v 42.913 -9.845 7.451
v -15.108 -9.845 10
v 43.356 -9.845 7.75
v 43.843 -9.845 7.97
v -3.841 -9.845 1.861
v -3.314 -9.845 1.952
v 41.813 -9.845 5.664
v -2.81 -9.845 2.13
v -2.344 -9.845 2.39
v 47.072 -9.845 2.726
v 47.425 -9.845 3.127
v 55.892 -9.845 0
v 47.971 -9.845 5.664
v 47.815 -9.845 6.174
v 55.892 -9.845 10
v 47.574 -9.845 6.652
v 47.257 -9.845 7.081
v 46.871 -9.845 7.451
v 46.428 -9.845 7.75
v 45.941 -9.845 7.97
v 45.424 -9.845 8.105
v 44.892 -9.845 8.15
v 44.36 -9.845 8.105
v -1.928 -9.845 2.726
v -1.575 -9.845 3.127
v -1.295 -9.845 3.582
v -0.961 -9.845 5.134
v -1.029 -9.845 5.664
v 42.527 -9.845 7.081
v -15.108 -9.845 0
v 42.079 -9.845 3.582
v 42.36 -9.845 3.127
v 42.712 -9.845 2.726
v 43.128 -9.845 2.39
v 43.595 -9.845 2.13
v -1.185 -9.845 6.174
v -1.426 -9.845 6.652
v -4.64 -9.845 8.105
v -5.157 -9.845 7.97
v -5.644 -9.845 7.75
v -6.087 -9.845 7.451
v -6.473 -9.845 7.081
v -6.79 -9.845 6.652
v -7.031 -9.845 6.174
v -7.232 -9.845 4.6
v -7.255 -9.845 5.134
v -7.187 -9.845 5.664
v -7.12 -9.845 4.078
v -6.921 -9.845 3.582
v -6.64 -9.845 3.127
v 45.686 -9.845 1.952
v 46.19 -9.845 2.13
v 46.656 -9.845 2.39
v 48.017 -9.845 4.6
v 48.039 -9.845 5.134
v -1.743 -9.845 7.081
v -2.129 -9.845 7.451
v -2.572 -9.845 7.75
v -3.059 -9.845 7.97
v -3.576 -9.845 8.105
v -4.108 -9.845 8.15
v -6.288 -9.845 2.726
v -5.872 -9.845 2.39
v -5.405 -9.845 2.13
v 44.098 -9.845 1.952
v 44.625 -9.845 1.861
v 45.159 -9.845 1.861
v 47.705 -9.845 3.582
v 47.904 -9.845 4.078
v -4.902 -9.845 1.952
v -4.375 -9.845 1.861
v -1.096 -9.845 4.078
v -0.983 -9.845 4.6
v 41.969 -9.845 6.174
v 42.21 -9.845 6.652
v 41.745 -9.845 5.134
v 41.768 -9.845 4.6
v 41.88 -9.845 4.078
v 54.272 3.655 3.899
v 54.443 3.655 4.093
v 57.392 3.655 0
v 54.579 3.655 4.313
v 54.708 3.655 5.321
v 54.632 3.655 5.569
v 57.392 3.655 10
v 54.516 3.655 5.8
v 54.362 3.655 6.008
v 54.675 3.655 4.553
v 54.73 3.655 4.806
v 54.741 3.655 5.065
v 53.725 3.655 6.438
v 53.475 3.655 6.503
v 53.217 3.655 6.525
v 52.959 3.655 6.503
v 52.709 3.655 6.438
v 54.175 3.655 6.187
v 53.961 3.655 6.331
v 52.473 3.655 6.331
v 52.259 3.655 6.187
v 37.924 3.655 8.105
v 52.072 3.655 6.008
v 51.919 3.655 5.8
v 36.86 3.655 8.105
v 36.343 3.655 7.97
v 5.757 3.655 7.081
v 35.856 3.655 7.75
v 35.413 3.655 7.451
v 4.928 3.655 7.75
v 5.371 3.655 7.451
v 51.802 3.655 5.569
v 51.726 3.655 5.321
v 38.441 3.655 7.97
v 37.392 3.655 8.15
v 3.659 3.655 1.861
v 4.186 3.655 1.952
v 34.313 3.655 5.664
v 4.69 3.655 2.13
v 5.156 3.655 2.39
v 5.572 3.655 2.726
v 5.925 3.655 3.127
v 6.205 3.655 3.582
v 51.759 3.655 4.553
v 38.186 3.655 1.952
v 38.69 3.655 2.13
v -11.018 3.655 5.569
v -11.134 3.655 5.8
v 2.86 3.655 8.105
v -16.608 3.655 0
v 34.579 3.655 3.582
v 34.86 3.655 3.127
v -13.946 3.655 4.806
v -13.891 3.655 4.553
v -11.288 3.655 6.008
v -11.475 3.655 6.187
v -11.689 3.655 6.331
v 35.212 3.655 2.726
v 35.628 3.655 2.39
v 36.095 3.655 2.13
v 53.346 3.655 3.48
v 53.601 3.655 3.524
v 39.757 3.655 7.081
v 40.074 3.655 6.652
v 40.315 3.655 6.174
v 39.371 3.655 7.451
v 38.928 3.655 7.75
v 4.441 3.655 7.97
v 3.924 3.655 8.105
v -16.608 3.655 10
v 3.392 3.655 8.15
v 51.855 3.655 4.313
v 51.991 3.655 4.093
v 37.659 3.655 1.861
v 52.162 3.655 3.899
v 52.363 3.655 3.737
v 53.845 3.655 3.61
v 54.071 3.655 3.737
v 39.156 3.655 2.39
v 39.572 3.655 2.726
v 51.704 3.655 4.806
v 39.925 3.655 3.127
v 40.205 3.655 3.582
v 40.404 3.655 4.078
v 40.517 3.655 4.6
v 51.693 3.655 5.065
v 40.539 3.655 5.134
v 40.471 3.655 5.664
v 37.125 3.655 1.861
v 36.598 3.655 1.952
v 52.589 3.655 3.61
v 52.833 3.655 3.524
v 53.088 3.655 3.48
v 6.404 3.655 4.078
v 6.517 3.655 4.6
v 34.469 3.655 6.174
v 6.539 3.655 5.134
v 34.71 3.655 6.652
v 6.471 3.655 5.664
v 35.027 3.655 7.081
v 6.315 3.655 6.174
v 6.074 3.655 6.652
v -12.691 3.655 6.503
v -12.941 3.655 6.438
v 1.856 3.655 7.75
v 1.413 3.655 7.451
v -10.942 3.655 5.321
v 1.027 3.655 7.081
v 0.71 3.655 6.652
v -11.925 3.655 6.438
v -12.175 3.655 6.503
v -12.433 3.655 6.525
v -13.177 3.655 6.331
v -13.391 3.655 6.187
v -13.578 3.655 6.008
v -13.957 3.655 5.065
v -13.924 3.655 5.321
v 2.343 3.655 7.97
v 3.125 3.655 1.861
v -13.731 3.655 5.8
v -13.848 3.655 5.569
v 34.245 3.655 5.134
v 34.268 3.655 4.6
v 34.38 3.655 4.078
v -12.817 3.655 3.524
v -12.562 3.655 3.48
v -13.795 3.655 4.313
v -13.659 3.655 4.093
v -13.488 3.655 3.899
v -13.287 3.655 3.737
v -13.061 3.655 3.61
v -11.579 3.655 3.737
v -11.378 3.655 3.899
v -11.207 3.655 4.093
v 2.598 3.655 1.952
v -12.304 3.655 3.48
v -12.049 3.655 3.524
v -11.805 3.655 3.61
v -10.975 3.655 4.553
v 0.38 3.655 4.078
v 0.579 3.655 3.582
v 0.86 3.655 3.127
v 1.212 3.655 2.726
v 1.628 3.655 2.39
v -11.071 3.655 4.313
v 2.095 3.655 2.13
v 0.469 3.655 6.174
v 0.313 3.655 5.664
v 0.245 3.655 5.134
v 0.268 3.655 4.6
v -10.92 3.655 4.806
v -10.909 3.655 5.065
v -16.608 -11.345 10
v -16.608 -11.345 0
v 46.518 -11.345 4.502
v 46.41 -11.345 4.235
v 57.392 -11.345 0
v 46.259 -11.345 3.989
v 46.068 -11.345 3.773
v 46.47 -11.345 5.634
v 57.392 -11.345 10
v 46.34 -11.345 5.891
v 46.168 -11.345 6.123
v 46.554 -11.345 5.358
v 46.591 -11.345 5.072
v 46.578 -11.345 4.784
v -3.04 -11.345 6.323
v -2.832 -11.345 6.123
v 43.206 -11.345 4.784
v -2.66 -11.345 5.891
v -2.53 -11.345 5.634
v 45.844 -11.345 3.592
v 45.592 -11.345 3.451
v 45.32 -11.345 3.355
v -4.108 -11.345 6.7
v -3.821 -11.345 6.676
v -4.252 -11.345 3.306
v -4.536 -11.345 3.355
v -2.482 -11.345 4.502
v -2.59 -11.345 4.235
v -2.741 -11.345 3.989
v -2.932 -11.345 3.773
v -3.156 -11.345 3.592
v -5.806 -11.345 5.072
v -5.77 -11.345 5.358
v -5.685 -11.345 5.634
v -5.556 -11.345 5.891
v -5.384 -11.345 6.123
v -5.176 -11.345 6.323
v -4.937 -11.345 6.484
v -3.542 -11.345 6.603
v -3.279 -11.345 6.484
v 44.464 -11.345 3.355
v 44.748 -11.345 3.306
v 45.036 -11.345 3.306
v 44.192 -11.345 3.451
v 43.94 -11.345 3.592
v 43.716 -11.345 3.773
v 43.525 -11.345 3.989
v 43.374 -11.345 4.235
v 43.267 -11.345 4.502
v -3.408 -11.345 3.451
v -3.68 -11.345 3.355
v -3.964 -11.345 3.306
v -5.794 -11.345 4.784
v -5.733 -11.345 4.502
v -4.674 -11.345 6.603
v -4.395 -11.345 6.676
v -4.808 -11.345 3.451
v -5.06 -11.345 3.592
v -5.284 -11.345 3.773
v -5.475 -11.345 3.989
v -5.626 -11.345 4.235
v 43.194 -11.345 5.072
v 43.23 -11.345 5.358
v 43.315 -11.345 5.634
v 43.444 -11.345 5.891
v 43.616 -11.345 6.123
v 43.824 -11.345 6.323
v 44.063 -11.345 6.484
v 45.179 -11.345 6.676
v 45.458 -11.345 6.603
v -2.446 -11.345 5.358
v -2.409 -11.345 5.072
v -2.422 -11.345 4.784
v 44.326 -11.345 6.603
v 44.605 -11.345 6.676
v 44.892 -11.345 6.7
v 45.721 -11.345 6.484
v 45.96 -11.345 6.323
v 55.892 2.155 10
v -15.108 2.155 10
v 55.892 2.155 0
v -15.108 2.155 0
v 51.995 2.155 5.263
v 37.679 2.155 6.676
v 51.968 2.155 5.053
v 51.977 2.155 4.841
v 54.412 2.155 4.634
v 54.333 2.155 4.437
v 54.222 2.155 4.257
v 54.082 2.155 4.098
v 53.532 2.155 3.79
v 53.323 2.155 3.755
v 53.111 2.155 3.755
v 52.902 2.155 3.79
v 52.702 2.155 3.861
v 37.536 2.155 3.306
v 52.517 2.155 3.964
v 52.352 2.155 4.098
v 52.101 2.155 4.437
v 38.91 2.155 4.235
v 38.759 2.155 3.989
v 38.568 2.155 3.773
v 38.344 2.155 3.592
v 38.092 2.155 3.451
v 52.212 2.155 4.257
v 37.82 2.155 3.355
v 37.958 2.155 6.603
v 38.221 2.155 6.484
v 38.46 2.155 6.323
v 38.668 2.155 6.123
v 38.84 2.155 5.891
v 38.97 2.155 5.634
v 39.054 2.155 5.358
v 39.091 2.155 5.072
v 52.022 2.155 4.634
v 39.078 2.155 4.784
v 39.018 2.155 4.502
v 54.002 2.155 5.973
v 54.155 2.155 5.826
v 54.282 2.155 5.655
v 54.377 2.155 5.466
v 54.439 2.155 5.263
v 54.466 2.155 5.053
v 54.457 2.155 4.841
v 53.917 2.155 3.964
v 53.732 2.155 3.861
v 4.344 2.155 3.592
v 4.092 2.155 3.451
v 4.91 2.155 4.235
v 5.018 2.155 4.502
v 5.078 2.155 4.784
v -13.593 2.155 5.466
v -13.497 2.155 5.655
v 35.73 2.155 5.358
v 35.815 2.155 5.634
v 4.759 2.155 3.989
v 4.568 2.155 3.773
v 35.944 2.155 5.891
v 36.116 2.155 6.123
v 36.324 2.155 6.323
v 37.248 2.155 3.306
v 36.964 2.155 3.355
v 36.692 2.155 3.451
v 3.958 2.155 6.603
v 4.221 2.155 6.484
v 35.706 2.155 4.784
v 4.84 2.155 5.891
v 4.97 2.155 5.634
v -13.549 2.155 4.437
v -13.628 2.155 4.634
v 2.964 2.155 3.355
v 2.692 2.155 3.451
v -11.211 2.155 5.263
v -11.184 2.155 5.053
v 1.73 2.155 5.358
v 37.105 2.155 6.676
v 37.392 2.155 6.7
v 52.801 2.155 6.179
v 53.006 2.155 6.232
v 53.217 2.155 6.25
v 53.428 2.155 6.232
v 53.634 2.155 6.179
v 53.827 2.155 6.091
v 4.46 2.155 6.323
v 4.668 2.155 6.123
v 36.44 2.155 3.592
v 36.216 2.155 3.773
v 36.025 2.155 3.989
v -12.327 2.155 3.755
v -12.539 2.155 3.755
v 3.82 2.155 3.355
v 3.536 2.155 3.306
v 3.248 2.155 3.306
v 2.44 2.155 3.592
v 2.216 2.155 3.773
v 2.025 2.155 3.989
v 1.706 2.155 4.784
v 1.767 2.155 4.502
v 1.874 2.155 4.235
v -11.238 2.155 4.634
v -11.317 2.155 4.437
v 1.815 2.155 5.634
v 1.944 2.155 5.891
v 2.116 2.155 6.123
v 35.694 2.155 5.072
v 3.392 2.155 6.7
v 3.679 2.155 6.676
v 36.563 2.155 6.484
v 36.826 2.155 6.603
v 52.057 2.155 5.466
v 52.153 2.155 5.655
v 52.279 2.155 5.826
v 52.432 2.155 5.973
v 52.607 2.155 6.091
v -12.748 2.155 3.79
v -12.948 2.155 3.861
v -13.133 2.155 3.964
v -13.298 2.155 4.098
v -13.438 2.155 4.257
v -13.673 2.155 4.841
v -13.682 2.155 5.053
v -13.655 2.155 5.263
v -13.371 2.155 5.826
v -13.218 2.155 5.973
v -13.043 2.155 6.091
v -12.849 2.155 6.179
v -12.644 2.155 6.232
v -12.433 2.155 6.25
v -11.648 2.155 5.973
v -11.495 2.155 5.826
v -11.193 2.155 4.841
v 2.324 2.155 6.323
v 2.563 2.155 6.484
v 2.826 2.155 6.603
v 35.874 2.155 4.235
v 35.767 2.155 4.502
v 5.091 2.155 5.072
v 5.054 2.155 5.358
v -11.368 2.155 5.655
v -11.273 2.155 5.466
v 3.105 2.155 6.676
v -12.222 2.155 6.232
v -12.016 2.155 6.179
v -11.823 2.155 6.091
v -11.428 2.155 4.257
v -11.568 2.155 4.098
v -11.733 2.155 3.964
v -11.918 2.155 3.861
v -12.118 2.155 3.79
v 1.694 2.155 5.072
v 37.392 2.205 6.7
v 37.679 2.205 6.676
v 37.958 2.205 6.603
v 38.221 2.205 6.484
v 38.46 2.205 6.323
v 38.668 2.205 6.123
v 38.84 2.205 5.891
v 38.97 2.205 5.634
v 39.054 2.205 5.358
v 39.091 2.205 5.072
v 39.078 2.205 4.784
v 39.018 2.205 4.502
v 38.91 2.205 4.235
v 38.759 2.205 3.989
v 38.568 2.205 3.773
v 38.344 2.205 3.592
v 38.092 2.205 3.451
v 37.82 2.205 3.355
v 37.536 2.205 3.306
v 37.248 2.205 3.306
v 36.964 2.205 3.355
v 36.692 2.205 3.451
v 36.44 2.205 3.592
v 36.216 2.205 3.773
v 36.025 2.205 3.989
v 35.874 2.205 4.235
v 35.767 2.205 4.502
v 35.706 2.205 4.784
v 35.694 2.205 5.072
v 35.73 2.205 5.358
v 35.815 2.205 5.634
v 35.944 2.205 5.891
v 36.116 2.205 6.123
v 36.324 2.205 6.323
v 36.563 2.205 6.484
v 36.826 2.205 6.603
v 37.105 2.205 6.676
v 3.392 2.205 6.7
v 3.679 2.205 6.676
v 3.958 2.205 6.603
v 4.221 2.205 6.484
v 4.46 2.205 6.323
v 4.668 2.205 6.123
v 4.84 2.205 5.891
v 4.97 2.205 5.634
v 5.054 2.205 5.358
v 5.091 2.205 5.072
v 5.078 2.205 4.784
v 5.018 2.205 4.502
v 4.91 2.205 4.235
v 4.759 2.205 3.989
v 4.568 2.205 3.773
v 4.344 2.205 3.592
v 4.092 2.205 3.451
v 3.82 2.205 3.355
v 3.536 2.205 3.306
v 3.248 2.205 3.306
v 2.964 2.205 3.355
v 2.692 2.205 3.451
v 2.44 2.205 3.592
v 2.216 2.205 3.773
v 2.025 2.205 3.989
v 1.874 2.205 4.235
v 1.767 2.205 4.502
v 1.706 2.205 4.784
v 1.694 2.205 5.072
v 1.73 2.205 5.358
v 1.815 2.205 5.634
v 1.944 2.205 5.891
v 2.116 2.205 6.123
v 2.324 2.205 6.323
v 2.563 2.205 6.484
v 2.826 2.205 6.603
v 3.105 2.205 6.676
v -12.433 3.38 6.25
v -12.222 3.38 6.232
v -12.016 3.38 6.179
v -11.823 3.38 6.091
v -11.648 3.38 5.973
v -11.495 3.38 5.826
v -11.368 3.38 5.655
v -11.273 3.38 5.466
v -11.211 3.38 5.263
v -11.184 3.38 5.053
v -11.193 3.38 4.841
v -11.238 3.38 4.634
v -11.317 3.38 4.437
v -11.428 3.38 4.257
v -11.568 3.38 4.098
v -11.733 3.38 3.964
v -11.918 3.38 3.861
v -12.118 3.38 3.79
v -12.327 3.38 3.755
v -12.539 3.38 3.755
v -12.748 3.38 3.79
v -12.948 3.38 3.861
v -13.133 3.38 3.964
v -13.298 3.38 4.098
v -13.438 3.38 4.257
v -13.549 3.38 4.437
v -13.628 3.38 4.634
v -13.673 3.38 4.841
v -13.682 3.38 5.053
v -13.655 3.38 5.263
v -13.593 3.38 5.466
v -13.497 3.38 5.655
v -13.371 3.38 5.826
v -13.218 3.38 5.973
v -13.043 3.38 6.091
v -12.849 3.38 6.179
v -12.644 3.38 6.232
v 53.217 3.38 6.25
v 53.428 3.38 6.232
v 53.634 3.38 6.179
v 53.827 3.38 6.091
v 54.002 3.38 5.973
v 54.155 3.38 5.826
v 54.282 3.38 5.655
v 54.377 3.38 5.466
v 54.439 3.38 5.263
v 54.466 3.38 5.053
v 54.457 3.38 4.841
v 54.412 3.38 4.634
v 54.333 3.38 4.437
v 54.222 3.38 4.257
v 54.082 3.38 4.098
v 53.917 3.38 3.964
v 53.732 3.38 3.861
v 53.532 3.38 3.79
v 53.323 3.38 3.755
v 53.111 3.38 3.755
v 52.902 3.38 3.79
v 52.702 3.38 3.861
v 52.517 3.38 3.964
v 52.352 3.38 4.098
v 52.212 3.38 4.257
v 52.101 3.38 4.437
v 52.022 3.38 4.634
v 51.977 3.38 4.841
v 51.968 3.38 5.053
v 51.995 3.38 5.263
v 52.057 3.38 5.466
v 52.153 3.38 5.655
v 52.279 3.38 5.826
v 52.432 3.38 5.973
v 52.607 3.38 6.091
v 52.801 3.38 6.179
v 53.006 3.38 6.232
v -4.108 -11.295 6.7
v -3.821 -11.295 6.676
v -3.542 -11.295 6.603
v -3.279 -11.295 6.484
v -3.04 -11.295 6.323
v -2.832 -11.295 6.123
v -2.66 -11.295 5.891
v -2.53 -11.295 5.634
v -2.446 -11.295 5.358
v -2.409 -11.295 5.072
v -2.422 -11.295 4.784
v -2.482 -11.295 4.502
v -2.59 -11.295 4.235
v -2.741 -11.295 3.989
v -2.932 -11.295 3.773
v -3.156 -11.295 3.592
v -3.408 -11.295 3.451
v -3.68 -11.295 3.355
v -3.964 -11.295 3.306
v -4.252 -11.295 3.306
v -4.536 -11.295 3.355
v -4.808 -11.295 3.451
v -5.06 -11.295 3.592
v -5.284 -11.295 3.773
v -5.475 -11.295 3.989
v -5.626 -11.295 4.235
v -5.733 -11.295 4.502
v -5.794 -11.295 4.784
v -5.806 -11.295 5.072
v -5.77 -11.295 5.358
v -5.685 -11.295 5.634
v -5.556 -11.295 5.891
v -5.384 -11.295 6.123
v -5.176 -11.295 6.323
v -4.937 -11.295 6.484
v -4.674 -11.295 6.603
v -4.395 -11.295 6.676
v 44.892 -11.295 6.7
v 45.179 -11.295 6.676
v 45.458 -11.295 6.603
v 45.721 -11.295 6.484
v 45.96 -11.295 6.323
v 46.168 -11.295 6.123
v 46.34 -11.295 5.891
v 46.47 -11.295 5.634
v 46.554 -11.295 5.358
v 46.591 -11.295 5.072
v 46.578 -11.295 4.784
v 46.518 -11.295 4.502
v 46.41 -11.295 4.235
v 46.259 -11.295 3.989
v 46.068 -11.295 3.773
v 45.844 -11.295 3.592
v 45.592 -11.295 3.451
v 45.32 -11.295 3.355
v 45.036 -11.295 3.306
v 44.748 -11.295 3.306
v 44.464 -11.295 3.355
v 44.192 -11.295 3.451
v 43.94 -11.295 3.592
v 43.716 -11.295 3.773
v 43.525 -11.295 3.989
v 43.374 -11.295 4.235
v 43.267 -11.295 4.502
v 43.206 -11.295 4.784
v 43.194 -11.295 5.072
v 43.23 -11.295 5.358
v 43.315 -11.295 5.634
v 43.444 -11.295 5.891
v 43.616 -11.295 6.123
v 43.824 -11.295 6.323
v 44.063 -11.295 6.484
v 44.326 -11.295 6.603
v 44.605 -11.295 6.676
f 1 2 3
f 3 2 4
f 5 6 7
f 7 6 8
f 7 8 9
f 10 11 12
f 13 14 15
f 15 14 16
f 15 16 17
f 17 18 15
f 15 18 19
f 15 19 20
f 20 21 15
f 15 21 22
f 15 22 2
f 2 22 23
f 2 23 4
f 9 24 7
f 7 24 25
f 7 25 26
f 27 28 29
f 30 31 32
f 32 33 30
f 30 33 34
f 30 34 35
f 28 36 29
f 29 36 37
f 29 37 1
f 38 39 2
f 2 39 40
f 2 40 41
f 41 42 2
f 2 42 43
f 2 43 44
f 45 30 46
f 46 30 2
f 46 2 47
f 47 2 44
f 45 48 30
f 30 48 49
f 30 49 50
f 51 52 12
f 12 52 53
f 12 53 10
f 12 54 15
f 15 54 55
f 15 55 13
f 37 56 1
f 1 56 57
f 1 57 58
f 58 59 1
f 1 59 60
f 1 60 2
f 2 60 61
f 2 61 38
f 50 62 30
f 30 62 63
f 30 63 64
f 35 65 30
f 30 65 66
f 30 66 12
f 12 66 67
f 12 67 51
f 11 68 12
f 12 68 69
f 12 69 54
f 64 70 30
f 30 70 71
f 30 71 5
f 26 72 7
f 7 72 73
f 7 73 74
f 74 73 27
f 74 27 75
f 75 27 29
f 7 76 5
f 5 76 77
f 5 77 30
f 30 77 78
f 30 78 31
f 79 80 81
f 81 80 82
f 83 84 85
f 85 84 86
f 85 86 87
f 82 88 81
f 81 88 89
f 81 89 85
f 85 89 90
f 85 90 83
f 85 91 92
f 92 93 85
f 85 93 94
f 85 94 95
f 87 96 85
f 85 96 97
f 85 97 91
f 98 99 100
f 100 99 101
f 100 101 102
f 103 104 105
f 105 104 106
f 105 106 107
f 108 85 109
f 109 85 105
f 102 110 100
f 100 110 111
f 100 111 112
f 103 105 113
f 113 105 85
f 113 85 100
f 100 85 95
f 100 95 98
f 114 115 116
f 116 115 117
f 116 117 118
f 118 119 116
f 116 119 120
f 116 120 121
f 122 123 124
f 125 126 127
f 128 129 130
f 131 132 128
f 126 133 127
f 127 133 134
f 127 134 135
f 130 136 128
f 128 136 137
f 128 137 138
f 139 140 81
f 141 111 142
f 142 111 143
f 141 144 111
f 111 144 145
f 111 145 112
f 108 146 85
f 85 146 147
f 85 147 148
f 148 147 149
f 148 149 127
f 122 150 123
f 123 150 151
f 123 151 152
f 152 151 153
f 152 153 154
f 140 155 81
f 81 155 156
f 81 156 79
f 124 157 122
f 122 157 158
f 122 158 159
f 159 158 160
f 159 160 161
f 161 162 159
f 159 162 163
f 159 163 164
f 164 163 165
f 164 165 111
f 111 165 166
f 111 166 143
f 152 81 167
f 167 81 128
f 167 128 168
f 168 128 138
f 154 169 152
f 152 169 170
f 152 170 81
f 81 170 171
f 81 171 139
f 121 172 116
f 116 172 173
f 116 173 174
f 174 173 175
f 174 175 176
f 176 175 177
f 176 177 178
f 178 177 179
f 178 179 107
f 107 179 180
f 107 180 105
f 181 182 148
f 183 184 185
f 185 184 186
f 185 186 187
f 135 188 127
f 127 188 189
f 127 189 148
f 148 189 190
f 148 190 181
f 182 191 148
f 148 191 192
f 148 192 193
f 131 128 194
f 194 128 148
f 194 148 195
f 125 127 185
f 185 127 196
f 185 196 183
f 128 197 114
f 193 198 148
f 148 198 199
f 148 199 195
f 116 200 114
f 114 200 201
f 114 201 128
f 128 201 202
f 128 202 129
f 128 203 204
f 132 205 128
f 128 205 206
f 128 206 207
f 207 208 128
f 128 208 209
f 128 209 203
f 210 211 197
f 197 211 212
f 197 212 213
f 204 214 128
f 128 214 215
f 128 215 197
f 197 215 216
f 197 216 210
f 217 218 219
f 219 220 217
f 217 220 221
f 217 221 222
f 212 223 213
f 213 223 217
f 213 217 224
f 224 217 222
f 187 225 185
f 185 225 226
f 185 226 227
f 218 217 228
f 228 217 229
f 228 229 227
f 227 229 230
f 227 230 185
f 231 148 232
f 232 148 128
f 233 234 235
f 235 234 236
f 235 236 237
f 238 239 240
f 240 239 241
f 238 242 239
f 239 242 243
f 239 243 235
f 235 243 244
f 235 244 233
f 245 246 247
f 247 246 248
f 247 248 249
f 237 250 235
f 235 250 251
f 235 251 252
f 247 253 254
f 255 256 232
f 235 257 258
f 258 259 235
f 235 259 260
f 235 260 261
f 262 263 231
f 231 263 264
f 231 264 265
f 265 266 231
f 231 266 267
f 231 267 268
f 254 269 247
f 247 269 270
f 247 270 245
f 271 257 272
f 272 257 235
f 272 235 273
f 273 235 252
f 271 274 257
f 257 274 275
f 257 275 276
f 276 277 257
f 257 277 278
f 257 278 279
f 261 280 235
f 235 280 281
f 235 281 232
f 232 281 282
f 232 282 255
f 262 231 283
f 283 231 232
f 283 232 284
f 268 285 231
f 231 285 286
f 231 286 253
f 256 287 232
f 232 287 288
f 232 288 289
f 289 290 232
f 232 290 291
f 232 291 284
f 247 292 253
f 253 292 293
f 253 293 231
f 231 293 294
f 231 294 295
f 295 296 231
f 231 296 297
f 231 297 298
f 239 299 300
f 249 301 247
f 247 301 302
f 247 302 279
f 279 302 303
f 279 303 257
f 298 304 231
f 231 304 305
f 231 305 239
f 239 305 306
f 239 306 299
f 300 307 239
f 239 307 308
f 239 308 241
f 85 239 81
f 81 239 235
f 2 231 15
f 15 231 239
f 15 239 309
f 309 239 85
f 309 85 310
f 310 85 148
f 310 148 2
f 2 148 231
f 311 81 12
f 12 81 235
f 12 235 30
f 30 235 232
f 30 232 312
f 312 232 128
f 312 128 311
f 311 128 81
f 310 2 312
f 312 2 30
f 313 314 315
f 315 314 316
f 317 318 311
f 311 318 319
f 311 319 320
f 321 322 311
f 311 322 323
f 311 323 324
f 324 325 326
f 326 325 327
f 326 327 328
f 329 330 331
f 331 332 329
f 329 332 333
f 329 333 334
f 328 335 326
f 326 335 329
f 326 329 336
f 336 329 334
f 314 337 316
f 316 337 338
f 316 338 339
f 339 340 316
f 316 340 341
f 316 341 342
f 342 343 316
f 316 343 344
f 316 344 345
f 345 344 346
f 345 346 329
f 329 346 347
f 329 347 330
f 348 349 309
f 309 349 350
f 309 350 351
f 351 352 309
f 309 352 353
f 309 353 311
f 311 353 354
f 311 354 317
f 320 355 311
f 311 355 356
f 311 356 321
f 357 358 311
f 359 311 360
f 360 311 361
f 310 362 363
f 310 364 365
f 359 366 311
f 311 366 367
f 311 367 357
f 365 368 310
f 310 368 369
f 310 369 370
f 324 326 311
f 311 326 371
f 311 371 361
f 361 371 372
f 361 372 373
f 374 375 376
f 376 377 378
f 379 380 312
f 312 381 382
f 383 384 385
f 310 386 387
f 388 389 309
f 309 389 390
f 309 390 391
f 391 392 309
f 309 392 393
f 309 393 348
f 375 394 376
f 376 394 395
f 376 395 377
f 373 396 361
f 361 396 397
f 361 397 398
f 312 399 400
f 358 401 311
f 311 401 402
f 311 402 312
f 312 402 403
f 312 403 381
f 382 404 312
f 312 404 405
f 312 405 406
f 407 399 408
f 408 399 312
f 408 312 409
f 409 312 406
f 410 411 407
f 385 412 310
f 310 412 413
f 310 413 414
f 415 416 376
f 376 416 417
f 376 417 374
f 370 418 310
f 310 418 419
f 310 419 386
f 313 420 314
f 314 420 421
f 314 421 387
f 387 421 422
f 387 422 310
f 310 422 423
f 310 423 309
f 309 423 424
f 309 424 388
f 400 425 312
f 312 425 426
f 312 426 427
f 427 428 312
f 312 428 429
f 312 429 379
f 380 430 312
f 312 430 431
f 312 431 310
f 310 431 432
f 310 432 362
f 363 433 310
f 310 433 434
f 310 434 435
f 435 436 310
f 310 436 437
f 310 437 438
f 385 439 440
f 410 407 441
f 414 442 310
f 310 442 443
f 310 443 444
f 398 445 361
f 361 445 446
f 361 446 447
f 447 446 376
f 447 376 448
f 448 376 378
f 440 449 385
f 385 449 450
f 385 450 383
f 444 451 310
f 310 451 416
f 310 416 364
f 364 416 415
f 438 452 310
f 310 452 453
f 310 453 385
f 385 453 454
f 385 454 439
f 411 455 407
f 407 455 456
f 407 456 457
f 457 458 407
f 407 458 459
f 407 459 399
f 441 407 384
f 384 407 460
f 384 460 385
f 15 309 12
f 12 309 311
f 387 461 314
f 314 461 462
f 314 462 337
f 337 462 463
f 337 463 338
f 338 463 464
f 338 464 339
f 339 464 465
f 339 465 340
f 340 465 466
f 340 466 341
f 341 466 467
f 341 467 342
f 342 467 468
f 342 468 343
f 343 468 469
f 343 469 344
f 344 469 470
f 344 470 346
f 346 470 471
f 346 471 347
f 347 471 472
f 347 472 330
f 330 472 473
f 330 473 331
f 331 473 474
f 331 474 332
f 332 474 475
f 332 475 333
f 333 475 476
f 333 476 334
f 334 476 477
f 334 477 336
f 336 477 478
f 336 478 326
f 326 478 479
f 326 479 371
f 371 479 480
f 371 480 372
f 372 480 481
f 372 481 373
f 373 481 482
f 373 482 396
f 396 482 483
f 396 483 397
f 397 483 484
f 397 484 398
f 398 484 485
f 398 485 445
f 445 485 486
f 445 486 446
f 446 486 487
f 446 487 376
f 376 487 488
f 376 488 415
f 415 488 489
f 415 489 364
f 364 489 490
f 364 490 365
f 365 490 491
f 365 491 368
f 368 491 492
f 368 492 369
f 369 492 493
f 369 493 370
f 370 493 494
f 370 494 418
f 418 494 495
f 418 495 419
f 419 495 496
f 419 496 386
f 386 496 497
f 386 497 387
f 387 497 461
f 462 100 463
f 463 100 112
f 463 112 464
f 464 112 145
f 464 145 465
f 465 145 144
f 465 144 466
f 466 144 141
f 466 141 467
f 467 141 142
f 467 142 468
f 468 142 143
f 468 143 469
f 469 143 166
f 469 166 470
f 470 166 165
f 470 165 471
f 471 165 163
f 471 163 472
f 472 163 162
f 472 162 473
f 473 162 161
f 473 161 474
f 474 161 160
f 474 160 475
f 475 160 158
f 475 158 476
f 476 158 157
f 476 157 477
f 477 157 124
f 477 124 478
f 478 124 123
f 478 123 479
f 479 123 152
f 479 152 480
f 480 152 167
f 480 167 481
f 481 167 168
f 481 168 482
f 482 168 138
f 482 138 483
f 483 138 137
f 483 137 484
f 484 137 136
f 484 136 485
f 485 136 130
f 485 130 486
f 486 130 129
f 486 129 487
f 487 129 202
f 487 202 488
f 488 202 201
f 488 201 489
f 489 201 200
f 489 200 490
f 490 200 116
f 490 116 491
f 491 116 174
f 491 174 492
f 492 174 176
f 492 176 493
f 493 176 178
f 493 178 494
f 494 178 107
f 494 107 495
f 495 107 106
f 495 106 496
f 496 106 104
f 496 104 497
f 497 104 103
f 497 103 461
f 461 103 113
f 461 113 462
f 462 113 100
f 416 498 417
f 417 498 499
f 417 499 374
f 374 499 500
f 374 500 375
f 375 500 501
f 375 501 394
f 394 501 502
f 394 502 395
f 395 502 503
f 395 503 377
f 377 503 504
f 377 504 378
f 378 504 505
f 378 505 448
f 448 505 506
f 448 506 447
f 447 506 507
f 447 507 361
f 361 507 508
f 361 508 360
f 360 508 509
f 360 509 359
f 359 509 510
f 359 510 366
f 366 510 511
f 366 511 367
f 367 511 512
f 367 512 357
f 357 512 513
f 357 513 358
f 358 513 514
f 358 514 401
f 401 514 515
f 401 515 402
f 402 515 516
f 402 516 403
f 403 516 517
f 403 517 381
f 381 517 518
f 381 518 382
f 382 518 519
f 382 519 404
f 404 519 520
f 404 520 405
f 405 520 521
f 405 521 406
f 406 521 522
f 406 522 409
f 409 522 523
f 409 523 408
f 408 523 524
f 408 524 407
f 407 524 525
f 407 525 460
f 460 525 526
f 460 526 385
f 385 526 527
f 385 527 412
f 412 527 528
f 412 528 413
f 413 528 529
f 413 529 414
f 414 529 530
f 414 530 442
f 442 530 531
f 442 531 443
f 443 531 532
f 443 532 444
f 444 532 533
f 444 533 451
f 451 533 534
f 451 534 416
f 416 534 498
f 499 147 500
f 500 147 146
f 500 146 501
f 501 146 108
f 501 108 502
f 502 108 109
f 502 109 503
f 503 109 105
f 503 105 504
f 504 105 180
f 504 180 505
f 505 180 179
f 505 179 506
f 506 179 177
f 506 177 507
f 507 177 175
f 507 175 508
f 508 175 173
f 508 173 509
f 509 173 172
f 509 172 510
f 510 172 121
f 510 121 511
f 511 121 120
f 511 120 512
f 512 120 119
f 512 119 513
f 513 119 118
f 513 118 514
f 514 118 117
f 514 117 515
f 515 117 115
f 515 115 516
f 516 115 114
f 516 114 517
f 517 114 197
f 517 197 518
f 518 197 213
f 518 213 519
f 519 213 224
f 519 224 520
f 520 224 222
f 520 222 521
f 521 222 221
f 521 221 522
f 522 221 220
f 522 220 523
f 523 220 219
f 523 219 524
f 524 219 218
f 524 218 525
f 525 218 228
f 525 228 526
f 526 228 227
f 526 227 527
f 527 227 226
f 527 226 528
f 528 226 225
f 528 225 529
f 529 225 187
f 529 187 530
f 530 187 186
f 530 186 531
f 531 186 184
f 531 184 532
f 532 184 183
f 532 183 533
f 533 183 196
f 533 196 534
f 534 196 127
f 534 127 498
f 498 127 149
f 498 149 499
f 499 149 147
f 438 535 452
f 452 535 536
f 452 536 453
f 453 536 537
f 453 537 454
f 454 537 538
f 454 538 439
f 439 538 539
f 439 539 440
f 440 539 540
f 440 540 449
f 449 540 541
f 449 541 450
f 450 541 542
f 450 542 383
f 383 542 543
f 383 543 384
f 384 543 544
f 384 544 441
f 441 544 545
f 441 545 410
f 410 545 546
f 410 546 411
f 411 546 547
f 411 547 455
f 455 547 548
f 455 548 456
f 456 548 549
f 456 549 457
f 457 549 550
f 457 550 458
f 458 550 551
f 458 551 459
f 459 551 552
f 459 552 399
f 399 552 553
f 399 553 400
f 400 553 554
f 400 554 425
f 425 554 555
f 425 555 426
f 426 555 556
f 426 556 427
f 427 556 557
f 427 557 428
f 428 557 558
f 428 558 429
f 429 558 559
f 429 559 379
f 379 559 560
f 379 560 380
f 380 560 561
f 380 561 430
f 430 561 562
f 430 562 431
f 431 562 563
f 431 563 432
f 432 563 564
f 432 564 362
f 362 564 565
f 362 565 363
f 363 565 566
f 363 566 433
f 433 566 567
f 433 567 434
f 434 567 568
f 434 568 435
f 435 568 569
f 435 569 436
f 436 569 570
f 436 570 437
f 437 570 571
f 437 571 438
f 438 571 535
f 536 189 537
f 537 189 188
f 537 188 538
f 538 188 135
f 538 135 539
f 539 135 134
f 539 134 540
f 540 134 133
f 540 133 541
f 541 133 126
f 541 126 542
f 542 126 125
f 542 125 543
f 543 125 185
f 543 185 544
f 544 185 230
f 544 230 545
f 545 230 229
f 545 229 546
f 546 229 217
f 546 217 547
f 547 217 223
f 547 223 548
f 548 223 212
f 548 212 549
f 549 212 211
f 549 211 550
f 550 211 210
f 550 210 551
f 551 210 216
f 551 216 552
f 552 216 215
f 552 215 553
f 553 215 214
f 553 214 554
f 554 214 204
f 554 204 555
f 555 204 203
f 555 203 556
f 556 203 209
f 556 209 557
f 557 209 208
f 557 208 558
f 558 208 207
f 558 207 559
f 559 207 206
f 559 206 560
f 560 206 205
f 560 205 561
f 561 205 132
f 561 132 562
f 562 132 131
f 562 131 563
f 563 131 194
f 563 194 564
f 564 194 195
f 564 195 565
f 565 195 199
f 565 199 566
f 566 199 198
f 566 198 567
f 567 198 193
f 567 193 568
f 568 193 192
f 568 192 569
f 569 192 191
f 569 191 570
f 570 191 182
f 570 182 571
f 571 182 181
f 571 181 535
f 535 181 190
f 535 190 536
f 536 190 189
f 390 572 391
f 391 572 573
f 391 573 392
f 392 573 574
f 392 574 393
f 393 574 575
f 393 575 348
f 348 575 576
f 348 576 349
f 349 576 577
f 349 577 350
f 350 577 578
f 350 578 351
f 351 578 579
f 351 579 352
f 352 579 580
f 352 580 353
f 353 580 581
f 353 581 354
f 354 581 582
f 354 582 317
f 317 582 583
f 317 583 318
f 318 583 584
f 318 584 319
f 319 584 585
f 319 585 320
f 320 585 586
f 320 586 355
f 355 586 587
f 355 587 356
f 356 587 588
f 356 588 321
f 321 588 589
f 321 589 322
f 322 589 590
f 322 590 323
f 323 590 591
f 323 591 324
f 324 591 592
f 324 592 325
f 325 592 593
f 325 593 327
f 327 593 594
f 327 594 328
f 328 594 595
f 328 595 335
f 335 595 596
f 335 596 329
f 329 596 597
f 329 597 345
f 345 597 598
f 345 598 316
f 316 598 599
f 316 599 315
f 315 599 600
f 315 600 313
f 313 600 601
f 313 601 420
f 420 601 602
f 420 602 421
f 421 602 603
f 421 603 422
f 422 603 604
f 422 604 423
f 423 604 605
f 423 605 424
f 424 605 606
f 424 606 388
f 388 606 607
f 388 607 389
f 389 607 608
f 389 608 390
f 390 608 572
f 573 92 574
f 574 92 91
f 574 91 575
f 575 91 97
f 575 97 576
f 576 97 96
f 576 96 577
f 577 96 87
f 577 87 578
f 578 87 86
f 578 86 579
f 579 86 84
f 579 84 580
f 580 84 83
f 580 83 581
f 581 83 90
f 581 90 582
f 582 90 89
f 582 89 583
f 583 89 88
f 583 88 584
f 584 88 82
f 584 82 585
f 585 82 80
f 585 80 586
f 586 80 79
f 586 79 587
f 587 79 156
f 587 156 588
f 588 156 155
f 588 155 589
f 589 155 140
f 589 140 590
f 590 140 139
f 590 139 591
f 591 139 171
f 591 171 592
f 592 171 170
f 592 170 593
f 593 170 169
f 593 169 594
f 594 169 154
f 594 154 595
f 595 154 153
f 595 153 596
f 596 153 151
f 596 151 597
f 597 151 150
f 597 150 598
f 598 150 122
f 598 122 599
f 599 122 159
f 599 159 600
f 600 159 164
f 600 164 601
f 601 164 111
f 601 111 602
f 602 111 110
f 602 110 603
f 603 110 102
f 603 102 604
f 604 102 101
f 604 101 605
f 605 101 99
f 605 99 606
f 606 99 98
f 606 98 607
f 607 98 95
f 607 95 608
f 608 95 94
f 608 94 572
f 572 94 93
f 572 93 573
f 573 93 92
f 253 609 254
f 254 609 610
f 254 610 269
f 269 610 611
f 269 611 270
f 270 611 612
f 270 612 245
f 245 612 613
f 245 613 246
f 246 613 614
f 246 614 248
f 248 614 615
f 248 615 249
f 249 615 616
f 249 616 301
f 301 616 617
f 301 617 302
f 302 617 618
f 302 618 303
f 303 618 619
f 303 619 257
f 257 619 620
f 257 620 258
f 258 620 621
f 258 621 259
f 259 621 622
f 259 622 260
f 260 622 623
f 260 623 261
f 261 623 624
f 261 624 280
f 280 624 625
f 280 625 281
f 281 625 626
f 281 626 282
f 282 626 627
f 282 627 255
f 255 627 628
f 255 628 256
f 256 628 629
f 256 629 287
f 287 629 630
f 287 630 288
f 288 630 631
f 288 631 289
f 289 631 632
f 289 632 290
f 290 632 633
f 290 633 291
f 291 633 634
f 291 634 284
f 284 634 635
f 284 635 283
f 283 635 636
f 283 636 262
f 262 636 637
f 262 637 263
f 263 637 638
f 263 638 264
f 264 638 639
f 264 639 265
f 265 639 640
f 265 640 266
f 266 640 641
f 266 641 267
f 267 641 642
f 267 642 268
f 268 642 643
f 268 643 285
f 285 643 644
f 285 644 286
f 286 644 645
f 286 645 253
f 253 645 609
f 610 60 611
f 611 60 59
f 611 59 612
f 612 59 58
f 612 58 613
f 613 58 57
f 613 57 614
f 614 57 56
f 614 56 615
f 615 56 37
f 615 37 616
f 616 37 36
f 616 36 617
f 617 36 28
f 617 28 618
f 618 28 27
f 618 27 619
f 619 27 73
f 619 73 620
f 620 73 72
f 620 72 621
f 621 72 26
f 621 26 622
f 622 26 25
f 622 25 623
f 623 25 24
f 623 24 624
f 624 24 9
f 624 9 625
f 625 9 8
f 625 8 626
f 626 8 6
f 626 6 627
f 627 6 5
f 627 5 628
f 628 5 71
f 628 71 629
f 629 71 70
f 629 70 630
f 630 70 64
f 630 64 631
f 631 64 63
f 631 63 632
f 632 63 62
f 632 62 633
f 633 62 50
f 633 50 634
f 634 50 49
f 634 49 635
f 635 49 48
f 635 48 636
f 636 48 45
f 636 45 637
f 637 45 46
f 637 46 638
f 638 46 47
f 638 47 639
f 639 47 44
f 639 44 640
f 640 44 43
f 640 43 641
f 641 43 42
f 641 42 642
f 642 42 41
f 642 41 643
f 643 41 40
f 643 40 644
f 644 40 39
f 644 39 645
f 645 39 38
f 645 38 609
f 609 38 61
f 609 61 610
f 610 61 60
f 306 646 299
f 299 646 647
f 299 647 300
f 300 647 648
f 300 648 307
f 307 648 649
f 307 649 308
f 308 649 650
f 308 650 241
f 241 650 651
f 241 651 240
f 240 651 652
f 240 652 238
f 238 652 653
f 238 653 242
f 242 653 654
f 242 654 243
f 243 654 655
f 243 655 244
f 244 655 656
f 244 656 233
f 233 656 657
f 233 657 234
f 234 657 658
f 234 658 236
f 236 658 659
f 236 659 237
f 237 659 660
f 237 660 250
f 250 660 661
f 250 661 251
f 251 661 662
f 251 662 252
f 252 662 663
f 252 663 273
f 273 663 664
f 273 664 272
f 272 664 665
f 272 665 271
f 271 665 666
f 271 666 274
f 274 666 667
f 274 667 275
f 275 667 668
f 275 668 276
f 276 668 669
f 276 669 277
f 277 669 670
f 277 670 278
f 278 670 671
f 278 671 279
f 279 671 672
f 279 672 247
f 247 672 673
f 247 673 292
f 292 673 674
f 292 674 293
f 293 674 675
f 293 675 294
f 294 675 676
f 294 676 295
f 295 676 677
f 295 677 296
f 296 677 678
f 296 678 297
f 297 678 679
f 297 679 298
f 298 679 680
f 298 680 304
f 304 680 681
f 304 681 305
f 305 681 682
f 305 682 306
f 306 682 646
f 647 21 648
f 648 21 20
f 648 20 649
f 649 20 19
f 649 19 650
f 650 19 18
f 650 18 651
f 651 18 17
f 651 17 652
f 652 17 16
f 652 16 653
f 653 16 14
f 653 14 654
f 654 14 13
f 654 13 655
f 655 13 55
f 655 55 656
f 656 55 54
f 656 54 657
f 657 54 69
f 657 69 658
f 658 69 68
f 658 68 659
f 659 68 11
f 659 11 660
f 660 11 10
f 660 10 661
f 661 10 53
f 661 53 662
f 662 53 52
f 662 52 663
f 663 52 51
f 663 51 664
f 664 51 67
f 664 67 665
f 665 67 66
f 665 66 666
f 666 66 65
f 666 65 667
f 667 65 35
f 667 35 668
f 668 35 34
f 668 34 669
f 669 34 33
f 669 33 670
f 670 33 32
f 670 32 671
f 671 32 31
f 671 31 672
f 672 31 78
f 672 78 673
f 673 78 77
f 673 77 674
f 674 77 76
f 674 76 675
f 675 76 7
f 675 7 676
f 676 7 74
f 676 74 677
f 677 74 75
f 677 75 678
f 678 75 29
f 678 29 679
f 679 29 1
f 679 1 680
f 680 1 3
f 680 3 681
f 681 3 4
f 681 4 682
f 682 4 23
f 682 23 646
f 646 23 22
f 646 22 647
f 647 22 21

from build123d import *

# Parameters (mm, degrees)
SKIZZE1_W                                      = 74
SKIZZE1_H                                      = 15
AUFSATZ_LINEAR_AUSTRAGEN1_DEPTH                = 10
SCHNITT_LINEAR_AUSTRAGEN1_REACH                = 61.351
SKIZZE2_W                                      = 71
SKIZZE2_H                                      = 12
FORMSENKUNG_F_R_M3_LINSENSENKSCHRAUB_2_COUNT   = 2
FORMSENKUNG_F_R_M3_LINSENSENKSCHRAUB_2_PITCH   = 34
M3_GEWINDEBOHRUNG1_AT_2_COUNT                  = 2
M3_GEWINDEBOHRUNG1_AT_2_PITCH                  = 65.65
FORMSENKUNG_F_R_M3_LINSENSENKSCHRAUB_3_A_COUNT = 2
FORMSENKUNG_F_R_M3_LINSENSENKSCHRAUB_3_A_PITCH = 49


with BuildPart() as part:
    # Skizze1 → Aufsatz-Linear austragen1 (new body)
    with BuildSketch(Plane.XY):
        with Locations((20.392098069, -3.844827586)):
            Rectangle(SKIZZE1_W, SKIZZE1_H)
    extrude(amount=AUFSATZ_LINEAR_AUSTRAGEN1_DEPTH)

    # Skizze2 → Schnitt-Linear austragen1 (cut, up to next)
    with BuildSketch(Plane.XY.offset(10), mode=Mode.PRIVATE) as schnitt_linear_austragen1_sk1:
        with Locations((20.392098069, -3.844827586)):
            Rectangle(SKIZZE2_W, SKIZZE2_H)
    schnitt_linear_austragen1_tool1 = extrude(schnitt_linear_austragen1_sk1.sketch, amount=-SCHNITT_LINEAR_AUSTRAGEN1_REACH, mode=Mode.PRIVATE) & part.part
    add(schnitt_linear_austragen1_tool1.solids().sort_by_distance((20.392098, -3.844828, 10))[0], mode=Mode.SUBTRACT)

    # Skizze10 → Formsenkung f_r M3 Linsensenkschraube mi (revolve, cut)
    with BuildSketch(Plane(origin=(3.392098069, 3.655172414, 5), x_dir=(0, 0, 1), z_dir=(1, 0, 0))):
        Polygon((0, 0), (0, 1.5), (1.7, 1.5), (1.7, 1.45), (3.15, 0), align=None)
    formsenkung_f_r_m3_linsensenkschraube_mi = revolve(axis=Axis((3.392098069, 10.005172414, 5), (0, -1, 0)), mode=Mode.SUBTRACT)

    # Formsenkung f_r M3 Linsensenkschraub 2: Formsenkung f_r M3 Linsensenkschraube mi ×2
    with Locations(*[(i * FORMSENKUNG_F_R_M3_LINSENSENKSCHRAUB_2_PITCH, 0, 0) for i in range(1, FORMSENKUNG_F_R_M3_LINSENSENKSCHRAUB_2_COUNT)]):
        add(formsenkung_f_r_m3_linsensenkschraube_mi, mode=Mode.SUBTRACT)

    # Skizze12 → M3 Gewindebohrung1 (revolve, cut)
    with BuildSketch(Plane(origin=(53.217098069, 3.655172414, 5), x_dir=(0, 0, 1), z_dir=(1, 0, 0))):
        Polygon((0, 0), (0, 1.5), (1.25, 1.5), (1.25, 0.275), (1.525, 0), align=None)
    m3_gewindebohrung1 = revolve(axis=Axis((53.217098069, 10.005172414, 5), (0, -1, 0)), mode=Mode.SUBTRACT)

    # M3 Gewindebohrung1 at 2: M3 Gewindebohrung1 ×2
    with Locations(*[(-i * M3_GEWINDEBOHRUNG1_AT_2_PITCH, 0, 0) for i in range(1, M3_GEWINDEBOHRUNG1_AT_2_COUNT)]):
        add(m3_gewindebohrung1, mode=Mode.SUBTRACT)

    # Skizze16 → Formsenkung f_r M3 Linsensenkschraub 3 (revolve, cut)
    with BuildSketch(Plane(origin=(44.892098069, -9.844827586, 5), x_dir=(0, 0, 1), z_dir=(1, 0, 0))):
        Polygon((0, 0), (0, 1.5), (1.7, 1.5), (1.7, 1.45), (3.15, 0), align=None)
    formsenkung_f_r_m3_linsensenkschraub_3 = revolve(axis=Axis((44.892098069, -3.494827586, 5), (0, -1, 0)), mode=Mode.SUBTRACT)

    # Formsenkung f_r M3 Linsensenkschraub 3 a: Formsenkung f_r M3 Linsensenkschraub 3 ×2
    with Locations(*[(-i * FORMSENKUNG_F_R_M3_LINSENSENKSCHRAUB_3_A_PITCH, 0, 0) for i in range(1, FORMSENKUNG_F_R_M3_LINSENSENKSCHRAUB_3_A_COUNT)]):
        add(formsenkung_f_r_m3_linsensenkschraub_3, mode=Mode.SUBTRACT)


solid = part.part
